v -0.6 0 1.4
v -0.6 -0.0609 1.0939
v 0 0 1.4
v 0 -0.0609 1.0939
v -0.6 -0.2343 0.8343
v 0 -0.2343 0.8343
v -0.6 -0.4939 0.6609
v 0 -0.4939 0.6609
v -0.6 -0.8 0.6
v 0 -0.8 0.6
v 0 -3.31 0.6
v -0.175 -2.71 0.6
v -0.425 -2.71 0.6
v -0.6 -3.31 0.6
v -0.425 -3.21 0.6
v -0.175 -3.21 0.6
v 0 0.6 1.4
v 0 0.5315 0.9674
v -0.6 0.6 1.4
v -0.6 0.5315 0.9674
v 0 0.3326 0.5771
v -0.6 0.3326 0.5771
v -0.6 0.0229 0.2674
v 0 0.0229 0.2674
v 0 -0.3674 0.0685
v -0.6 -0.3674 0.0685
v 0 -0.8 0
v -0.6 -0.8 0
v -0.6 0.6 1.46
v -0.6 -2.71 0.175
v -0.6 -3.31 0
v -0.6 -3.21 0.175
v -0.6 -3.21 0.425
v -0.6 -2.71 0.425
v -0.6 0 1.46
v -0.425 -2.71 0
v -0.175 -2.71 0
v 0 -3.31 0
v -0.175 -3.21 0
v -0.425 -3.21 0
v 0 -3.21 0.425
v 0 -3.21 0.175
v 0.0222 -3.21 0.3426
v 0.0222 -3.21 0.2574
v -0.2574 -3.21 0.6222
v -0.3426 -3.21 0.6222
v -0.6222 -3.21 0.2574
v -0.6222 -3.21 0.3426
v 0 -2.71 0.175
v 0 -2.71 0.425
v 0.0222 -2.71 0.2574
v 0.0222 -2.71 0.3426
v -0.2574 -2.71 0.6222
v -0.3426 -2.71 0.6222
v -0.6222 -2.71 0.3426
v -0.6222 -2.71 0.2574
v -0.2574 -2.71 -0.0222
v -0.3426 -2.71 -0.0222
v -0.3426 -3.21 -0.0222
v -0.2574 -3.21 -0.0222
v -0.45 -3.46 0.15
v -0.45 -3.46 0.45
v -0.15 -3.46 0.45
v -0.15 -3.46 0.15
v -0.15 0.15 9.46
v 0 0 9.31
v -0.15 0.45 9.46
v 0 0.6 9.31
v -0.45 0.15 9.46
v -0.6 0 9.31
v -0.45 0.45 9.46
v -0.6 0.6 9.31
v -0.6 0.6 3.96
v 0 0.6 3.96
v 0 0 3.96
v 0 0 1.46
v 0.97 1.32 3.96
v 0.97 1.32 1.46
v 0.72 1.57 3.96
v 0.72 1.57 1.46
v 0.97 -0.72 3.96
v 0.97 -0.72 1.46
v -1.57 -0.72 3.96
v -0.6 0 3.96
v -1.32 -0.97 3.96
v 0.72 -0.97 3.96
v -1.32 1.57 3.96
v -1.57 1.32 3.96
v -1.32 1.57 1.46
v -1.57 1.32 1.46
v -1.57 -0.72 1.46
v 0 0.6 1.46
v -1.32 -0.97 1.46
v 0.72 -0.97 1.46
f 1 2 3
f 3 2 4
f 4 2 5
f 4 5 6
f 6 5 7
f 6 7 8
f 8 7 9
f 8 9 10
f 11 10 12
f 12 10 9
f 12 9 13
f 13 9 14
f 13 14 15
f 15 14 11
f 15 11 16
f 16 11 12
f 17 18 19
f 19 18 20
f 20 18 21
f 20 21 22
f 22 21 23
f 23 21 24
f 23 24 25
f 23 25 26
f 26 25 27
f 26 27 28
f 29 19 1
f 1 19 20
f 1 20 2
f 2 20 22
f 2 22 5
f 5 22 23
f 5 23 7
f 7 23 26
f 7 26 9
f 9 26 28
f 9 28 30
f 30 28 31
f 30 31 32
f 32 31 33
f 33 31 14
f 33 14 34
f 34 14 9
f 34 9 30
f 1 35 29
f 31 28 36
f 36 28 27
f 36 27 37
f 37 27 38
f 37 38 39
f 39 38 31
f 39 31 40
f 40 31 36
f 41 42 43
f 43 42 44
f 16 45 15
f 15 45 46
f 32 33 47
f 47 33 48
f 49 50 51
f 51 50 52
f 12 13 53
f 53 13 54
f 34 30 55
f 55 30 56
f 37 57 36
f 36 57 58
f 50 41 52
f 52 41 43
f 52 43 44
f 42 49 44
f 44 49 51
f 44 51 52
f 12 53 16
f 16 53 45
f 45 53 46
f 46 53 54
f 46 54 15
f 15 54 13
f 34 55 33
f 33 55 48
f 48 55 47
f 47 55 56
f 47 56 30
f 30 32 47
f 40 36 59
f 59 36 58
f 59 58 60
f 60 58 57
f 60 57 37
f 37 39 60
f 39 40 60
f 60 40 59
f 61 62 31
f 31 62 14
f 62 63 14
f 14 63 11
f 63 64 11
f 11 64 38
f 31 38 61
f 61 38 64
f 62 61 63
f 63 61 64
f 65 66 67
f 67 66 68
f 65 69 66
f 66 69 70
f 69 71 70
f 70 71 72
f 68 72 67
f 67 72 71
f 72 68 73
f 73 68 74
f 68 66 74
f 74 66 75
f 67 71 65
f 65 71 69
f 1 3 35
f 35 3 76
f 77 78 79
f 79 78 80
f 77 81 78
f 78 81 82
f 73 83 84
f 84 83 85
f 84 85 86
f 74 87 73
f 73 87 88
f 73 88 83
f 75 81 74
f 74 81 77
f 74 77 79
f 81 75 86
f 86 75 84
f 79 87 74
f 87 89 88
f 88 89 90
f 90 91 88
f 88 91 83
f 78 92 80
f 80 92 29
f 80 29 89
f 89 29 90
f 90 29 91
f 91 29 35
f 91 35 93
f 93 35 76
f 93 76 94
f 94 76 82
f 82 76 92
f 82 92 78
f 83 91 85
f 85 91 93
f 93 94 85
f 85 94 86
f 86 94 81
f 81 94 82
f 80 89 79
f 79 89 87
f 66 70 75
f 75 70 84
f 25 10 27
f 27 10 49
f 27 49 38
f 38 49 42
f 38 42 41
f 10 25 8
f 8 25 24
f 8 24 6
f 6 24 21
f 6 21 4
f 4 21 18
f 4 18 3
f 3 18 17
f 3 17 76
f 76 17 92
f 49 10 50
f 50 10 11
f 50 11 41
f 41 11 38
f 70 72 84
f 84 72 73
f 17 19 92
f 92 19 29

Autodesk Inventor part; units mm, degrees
ref_plane "YZ Plane" through (0, 0, 0) normal (1, 0, 0) x (0, 1, 0)
sketch "Skizze2" plane through (0, 0, 0) normal (0, 0, 1) x (1, 0, 0)
  line L0 (0, 0) -> (-0.6, 0)
  line L1 (-0.6, 0) -> (-0.6, 0.6)
  line L2 (-0.6, 0.6) -> (0, 0.6)
  line L3 (0, 0.6) -> (0, 0)
  dimension "d0" = 0.6
  dimension "d1" = 0.6
extrude "Extrusion1" add sketch "Skizze2" along normal blind 9.46
ref_plane "Arbeitsebene1" through (0, 0, 1.46) normal (0, 0, -1) x (-1, 0, 0)
sketch "Skizze3" plane through (0, 0, 1.46) normal (0, 0, -1) x (-1, 0, 0)
  line L0 (1.57, 1.57) -> (-0.97, 1.57)
  line L1 (-0.97, 1.57) -> (-0.97, -0.97)
  line L2 (-0.97, -0.97) -> (1.57, -0.97)
  line L3 (1.57, -0.97) -> (1.57, 1.57)
  line L4 (0.6, 0) -> (0.6, 0.6) projected
  line L5 (0, 0.6) -> (0.6, 0.6) projected
  point P0 (0, 0)
  dimension "d5" = 2.54
  dimension "d6" = 2.54
  dimension "d7" = 0.97
  dimension "d8" = 0.97
extrude "Extrusion2" add sketch "Skizze3" against normal blind 2.5
chamfer "Fase1" distance 0.25 angle 45 4 edges at (0.97, -0.97, 2.71) (-1.57, -0.97, 2.71) (-1.57, 1.57, 2.71) (0.97, 1.57, 2.71)
sketch "Skizze8" plane through (-0.6, 0, 0) normal (0, -1, 0) x (1, 0, 0)
  line L0 (0, 0) -> (0.6, 0) projected
  line L1 (0, 0) -> (0, 1.46) projected
  line L2 (0.6, 0) -> (0, 0)
  line L3 (0, 0) -> (0, 0.6)
  line L4 (0, 0.6) -> (0.6, 0.6)
  line L5 (0.6, 0.6) -> (0.6, 0)
  dimension "d33" = 0.6
extrude "Extrusion6" add sketch "Skizze8" along normal blind 3.46
chamfer "Fase3" distance 0.15 angle 45 8 edges at (-0.6, 0.3, 9.46) (-0.3, 0, 9.46) (0, 0.3, 9.46) (-0.3, 0.6, 9.46) (0, -3.46, 0.3) (-0.3, -3.46, 0.6) (-0.3, -3.46, 0) (-0.6, -3.46, 0.3)
ref_plane "Arbeitsebene2" through (-0.6, -3.21, 0) normal (0, -1, 0) x (1, 0, 0)
sketch "Skizze10" plane through (-0.6, -3.21, 0) normal (0, -1, 0) x (1, 0, 0)
  circle A0 centre (0.3, 0.3) radius 0.325
  line L0 (0, 0) -> (0.6, 0) projected
  line L1 (0, 0.6) -> (0, 0) projected
  dimension "d40" = 0.65
  dimension "d41" = 0.3
  dimension "d42" = 0.3
extrude "Extrusion7" add sketch "Skizze10" against normal blind 0.5 contours A0 L0 L1 | L1 A0 | A0 L0 picked at (0.1927, 0.3972)
fillet "Rundung3" radius 1.4 1 edges at (-0.3, 0.6, 0)
fillet "Rundung4" radius 0.8 1 edges at (-0.3, 0, 0.6)
properties part number "Stiftleiste_Male_90_1"
